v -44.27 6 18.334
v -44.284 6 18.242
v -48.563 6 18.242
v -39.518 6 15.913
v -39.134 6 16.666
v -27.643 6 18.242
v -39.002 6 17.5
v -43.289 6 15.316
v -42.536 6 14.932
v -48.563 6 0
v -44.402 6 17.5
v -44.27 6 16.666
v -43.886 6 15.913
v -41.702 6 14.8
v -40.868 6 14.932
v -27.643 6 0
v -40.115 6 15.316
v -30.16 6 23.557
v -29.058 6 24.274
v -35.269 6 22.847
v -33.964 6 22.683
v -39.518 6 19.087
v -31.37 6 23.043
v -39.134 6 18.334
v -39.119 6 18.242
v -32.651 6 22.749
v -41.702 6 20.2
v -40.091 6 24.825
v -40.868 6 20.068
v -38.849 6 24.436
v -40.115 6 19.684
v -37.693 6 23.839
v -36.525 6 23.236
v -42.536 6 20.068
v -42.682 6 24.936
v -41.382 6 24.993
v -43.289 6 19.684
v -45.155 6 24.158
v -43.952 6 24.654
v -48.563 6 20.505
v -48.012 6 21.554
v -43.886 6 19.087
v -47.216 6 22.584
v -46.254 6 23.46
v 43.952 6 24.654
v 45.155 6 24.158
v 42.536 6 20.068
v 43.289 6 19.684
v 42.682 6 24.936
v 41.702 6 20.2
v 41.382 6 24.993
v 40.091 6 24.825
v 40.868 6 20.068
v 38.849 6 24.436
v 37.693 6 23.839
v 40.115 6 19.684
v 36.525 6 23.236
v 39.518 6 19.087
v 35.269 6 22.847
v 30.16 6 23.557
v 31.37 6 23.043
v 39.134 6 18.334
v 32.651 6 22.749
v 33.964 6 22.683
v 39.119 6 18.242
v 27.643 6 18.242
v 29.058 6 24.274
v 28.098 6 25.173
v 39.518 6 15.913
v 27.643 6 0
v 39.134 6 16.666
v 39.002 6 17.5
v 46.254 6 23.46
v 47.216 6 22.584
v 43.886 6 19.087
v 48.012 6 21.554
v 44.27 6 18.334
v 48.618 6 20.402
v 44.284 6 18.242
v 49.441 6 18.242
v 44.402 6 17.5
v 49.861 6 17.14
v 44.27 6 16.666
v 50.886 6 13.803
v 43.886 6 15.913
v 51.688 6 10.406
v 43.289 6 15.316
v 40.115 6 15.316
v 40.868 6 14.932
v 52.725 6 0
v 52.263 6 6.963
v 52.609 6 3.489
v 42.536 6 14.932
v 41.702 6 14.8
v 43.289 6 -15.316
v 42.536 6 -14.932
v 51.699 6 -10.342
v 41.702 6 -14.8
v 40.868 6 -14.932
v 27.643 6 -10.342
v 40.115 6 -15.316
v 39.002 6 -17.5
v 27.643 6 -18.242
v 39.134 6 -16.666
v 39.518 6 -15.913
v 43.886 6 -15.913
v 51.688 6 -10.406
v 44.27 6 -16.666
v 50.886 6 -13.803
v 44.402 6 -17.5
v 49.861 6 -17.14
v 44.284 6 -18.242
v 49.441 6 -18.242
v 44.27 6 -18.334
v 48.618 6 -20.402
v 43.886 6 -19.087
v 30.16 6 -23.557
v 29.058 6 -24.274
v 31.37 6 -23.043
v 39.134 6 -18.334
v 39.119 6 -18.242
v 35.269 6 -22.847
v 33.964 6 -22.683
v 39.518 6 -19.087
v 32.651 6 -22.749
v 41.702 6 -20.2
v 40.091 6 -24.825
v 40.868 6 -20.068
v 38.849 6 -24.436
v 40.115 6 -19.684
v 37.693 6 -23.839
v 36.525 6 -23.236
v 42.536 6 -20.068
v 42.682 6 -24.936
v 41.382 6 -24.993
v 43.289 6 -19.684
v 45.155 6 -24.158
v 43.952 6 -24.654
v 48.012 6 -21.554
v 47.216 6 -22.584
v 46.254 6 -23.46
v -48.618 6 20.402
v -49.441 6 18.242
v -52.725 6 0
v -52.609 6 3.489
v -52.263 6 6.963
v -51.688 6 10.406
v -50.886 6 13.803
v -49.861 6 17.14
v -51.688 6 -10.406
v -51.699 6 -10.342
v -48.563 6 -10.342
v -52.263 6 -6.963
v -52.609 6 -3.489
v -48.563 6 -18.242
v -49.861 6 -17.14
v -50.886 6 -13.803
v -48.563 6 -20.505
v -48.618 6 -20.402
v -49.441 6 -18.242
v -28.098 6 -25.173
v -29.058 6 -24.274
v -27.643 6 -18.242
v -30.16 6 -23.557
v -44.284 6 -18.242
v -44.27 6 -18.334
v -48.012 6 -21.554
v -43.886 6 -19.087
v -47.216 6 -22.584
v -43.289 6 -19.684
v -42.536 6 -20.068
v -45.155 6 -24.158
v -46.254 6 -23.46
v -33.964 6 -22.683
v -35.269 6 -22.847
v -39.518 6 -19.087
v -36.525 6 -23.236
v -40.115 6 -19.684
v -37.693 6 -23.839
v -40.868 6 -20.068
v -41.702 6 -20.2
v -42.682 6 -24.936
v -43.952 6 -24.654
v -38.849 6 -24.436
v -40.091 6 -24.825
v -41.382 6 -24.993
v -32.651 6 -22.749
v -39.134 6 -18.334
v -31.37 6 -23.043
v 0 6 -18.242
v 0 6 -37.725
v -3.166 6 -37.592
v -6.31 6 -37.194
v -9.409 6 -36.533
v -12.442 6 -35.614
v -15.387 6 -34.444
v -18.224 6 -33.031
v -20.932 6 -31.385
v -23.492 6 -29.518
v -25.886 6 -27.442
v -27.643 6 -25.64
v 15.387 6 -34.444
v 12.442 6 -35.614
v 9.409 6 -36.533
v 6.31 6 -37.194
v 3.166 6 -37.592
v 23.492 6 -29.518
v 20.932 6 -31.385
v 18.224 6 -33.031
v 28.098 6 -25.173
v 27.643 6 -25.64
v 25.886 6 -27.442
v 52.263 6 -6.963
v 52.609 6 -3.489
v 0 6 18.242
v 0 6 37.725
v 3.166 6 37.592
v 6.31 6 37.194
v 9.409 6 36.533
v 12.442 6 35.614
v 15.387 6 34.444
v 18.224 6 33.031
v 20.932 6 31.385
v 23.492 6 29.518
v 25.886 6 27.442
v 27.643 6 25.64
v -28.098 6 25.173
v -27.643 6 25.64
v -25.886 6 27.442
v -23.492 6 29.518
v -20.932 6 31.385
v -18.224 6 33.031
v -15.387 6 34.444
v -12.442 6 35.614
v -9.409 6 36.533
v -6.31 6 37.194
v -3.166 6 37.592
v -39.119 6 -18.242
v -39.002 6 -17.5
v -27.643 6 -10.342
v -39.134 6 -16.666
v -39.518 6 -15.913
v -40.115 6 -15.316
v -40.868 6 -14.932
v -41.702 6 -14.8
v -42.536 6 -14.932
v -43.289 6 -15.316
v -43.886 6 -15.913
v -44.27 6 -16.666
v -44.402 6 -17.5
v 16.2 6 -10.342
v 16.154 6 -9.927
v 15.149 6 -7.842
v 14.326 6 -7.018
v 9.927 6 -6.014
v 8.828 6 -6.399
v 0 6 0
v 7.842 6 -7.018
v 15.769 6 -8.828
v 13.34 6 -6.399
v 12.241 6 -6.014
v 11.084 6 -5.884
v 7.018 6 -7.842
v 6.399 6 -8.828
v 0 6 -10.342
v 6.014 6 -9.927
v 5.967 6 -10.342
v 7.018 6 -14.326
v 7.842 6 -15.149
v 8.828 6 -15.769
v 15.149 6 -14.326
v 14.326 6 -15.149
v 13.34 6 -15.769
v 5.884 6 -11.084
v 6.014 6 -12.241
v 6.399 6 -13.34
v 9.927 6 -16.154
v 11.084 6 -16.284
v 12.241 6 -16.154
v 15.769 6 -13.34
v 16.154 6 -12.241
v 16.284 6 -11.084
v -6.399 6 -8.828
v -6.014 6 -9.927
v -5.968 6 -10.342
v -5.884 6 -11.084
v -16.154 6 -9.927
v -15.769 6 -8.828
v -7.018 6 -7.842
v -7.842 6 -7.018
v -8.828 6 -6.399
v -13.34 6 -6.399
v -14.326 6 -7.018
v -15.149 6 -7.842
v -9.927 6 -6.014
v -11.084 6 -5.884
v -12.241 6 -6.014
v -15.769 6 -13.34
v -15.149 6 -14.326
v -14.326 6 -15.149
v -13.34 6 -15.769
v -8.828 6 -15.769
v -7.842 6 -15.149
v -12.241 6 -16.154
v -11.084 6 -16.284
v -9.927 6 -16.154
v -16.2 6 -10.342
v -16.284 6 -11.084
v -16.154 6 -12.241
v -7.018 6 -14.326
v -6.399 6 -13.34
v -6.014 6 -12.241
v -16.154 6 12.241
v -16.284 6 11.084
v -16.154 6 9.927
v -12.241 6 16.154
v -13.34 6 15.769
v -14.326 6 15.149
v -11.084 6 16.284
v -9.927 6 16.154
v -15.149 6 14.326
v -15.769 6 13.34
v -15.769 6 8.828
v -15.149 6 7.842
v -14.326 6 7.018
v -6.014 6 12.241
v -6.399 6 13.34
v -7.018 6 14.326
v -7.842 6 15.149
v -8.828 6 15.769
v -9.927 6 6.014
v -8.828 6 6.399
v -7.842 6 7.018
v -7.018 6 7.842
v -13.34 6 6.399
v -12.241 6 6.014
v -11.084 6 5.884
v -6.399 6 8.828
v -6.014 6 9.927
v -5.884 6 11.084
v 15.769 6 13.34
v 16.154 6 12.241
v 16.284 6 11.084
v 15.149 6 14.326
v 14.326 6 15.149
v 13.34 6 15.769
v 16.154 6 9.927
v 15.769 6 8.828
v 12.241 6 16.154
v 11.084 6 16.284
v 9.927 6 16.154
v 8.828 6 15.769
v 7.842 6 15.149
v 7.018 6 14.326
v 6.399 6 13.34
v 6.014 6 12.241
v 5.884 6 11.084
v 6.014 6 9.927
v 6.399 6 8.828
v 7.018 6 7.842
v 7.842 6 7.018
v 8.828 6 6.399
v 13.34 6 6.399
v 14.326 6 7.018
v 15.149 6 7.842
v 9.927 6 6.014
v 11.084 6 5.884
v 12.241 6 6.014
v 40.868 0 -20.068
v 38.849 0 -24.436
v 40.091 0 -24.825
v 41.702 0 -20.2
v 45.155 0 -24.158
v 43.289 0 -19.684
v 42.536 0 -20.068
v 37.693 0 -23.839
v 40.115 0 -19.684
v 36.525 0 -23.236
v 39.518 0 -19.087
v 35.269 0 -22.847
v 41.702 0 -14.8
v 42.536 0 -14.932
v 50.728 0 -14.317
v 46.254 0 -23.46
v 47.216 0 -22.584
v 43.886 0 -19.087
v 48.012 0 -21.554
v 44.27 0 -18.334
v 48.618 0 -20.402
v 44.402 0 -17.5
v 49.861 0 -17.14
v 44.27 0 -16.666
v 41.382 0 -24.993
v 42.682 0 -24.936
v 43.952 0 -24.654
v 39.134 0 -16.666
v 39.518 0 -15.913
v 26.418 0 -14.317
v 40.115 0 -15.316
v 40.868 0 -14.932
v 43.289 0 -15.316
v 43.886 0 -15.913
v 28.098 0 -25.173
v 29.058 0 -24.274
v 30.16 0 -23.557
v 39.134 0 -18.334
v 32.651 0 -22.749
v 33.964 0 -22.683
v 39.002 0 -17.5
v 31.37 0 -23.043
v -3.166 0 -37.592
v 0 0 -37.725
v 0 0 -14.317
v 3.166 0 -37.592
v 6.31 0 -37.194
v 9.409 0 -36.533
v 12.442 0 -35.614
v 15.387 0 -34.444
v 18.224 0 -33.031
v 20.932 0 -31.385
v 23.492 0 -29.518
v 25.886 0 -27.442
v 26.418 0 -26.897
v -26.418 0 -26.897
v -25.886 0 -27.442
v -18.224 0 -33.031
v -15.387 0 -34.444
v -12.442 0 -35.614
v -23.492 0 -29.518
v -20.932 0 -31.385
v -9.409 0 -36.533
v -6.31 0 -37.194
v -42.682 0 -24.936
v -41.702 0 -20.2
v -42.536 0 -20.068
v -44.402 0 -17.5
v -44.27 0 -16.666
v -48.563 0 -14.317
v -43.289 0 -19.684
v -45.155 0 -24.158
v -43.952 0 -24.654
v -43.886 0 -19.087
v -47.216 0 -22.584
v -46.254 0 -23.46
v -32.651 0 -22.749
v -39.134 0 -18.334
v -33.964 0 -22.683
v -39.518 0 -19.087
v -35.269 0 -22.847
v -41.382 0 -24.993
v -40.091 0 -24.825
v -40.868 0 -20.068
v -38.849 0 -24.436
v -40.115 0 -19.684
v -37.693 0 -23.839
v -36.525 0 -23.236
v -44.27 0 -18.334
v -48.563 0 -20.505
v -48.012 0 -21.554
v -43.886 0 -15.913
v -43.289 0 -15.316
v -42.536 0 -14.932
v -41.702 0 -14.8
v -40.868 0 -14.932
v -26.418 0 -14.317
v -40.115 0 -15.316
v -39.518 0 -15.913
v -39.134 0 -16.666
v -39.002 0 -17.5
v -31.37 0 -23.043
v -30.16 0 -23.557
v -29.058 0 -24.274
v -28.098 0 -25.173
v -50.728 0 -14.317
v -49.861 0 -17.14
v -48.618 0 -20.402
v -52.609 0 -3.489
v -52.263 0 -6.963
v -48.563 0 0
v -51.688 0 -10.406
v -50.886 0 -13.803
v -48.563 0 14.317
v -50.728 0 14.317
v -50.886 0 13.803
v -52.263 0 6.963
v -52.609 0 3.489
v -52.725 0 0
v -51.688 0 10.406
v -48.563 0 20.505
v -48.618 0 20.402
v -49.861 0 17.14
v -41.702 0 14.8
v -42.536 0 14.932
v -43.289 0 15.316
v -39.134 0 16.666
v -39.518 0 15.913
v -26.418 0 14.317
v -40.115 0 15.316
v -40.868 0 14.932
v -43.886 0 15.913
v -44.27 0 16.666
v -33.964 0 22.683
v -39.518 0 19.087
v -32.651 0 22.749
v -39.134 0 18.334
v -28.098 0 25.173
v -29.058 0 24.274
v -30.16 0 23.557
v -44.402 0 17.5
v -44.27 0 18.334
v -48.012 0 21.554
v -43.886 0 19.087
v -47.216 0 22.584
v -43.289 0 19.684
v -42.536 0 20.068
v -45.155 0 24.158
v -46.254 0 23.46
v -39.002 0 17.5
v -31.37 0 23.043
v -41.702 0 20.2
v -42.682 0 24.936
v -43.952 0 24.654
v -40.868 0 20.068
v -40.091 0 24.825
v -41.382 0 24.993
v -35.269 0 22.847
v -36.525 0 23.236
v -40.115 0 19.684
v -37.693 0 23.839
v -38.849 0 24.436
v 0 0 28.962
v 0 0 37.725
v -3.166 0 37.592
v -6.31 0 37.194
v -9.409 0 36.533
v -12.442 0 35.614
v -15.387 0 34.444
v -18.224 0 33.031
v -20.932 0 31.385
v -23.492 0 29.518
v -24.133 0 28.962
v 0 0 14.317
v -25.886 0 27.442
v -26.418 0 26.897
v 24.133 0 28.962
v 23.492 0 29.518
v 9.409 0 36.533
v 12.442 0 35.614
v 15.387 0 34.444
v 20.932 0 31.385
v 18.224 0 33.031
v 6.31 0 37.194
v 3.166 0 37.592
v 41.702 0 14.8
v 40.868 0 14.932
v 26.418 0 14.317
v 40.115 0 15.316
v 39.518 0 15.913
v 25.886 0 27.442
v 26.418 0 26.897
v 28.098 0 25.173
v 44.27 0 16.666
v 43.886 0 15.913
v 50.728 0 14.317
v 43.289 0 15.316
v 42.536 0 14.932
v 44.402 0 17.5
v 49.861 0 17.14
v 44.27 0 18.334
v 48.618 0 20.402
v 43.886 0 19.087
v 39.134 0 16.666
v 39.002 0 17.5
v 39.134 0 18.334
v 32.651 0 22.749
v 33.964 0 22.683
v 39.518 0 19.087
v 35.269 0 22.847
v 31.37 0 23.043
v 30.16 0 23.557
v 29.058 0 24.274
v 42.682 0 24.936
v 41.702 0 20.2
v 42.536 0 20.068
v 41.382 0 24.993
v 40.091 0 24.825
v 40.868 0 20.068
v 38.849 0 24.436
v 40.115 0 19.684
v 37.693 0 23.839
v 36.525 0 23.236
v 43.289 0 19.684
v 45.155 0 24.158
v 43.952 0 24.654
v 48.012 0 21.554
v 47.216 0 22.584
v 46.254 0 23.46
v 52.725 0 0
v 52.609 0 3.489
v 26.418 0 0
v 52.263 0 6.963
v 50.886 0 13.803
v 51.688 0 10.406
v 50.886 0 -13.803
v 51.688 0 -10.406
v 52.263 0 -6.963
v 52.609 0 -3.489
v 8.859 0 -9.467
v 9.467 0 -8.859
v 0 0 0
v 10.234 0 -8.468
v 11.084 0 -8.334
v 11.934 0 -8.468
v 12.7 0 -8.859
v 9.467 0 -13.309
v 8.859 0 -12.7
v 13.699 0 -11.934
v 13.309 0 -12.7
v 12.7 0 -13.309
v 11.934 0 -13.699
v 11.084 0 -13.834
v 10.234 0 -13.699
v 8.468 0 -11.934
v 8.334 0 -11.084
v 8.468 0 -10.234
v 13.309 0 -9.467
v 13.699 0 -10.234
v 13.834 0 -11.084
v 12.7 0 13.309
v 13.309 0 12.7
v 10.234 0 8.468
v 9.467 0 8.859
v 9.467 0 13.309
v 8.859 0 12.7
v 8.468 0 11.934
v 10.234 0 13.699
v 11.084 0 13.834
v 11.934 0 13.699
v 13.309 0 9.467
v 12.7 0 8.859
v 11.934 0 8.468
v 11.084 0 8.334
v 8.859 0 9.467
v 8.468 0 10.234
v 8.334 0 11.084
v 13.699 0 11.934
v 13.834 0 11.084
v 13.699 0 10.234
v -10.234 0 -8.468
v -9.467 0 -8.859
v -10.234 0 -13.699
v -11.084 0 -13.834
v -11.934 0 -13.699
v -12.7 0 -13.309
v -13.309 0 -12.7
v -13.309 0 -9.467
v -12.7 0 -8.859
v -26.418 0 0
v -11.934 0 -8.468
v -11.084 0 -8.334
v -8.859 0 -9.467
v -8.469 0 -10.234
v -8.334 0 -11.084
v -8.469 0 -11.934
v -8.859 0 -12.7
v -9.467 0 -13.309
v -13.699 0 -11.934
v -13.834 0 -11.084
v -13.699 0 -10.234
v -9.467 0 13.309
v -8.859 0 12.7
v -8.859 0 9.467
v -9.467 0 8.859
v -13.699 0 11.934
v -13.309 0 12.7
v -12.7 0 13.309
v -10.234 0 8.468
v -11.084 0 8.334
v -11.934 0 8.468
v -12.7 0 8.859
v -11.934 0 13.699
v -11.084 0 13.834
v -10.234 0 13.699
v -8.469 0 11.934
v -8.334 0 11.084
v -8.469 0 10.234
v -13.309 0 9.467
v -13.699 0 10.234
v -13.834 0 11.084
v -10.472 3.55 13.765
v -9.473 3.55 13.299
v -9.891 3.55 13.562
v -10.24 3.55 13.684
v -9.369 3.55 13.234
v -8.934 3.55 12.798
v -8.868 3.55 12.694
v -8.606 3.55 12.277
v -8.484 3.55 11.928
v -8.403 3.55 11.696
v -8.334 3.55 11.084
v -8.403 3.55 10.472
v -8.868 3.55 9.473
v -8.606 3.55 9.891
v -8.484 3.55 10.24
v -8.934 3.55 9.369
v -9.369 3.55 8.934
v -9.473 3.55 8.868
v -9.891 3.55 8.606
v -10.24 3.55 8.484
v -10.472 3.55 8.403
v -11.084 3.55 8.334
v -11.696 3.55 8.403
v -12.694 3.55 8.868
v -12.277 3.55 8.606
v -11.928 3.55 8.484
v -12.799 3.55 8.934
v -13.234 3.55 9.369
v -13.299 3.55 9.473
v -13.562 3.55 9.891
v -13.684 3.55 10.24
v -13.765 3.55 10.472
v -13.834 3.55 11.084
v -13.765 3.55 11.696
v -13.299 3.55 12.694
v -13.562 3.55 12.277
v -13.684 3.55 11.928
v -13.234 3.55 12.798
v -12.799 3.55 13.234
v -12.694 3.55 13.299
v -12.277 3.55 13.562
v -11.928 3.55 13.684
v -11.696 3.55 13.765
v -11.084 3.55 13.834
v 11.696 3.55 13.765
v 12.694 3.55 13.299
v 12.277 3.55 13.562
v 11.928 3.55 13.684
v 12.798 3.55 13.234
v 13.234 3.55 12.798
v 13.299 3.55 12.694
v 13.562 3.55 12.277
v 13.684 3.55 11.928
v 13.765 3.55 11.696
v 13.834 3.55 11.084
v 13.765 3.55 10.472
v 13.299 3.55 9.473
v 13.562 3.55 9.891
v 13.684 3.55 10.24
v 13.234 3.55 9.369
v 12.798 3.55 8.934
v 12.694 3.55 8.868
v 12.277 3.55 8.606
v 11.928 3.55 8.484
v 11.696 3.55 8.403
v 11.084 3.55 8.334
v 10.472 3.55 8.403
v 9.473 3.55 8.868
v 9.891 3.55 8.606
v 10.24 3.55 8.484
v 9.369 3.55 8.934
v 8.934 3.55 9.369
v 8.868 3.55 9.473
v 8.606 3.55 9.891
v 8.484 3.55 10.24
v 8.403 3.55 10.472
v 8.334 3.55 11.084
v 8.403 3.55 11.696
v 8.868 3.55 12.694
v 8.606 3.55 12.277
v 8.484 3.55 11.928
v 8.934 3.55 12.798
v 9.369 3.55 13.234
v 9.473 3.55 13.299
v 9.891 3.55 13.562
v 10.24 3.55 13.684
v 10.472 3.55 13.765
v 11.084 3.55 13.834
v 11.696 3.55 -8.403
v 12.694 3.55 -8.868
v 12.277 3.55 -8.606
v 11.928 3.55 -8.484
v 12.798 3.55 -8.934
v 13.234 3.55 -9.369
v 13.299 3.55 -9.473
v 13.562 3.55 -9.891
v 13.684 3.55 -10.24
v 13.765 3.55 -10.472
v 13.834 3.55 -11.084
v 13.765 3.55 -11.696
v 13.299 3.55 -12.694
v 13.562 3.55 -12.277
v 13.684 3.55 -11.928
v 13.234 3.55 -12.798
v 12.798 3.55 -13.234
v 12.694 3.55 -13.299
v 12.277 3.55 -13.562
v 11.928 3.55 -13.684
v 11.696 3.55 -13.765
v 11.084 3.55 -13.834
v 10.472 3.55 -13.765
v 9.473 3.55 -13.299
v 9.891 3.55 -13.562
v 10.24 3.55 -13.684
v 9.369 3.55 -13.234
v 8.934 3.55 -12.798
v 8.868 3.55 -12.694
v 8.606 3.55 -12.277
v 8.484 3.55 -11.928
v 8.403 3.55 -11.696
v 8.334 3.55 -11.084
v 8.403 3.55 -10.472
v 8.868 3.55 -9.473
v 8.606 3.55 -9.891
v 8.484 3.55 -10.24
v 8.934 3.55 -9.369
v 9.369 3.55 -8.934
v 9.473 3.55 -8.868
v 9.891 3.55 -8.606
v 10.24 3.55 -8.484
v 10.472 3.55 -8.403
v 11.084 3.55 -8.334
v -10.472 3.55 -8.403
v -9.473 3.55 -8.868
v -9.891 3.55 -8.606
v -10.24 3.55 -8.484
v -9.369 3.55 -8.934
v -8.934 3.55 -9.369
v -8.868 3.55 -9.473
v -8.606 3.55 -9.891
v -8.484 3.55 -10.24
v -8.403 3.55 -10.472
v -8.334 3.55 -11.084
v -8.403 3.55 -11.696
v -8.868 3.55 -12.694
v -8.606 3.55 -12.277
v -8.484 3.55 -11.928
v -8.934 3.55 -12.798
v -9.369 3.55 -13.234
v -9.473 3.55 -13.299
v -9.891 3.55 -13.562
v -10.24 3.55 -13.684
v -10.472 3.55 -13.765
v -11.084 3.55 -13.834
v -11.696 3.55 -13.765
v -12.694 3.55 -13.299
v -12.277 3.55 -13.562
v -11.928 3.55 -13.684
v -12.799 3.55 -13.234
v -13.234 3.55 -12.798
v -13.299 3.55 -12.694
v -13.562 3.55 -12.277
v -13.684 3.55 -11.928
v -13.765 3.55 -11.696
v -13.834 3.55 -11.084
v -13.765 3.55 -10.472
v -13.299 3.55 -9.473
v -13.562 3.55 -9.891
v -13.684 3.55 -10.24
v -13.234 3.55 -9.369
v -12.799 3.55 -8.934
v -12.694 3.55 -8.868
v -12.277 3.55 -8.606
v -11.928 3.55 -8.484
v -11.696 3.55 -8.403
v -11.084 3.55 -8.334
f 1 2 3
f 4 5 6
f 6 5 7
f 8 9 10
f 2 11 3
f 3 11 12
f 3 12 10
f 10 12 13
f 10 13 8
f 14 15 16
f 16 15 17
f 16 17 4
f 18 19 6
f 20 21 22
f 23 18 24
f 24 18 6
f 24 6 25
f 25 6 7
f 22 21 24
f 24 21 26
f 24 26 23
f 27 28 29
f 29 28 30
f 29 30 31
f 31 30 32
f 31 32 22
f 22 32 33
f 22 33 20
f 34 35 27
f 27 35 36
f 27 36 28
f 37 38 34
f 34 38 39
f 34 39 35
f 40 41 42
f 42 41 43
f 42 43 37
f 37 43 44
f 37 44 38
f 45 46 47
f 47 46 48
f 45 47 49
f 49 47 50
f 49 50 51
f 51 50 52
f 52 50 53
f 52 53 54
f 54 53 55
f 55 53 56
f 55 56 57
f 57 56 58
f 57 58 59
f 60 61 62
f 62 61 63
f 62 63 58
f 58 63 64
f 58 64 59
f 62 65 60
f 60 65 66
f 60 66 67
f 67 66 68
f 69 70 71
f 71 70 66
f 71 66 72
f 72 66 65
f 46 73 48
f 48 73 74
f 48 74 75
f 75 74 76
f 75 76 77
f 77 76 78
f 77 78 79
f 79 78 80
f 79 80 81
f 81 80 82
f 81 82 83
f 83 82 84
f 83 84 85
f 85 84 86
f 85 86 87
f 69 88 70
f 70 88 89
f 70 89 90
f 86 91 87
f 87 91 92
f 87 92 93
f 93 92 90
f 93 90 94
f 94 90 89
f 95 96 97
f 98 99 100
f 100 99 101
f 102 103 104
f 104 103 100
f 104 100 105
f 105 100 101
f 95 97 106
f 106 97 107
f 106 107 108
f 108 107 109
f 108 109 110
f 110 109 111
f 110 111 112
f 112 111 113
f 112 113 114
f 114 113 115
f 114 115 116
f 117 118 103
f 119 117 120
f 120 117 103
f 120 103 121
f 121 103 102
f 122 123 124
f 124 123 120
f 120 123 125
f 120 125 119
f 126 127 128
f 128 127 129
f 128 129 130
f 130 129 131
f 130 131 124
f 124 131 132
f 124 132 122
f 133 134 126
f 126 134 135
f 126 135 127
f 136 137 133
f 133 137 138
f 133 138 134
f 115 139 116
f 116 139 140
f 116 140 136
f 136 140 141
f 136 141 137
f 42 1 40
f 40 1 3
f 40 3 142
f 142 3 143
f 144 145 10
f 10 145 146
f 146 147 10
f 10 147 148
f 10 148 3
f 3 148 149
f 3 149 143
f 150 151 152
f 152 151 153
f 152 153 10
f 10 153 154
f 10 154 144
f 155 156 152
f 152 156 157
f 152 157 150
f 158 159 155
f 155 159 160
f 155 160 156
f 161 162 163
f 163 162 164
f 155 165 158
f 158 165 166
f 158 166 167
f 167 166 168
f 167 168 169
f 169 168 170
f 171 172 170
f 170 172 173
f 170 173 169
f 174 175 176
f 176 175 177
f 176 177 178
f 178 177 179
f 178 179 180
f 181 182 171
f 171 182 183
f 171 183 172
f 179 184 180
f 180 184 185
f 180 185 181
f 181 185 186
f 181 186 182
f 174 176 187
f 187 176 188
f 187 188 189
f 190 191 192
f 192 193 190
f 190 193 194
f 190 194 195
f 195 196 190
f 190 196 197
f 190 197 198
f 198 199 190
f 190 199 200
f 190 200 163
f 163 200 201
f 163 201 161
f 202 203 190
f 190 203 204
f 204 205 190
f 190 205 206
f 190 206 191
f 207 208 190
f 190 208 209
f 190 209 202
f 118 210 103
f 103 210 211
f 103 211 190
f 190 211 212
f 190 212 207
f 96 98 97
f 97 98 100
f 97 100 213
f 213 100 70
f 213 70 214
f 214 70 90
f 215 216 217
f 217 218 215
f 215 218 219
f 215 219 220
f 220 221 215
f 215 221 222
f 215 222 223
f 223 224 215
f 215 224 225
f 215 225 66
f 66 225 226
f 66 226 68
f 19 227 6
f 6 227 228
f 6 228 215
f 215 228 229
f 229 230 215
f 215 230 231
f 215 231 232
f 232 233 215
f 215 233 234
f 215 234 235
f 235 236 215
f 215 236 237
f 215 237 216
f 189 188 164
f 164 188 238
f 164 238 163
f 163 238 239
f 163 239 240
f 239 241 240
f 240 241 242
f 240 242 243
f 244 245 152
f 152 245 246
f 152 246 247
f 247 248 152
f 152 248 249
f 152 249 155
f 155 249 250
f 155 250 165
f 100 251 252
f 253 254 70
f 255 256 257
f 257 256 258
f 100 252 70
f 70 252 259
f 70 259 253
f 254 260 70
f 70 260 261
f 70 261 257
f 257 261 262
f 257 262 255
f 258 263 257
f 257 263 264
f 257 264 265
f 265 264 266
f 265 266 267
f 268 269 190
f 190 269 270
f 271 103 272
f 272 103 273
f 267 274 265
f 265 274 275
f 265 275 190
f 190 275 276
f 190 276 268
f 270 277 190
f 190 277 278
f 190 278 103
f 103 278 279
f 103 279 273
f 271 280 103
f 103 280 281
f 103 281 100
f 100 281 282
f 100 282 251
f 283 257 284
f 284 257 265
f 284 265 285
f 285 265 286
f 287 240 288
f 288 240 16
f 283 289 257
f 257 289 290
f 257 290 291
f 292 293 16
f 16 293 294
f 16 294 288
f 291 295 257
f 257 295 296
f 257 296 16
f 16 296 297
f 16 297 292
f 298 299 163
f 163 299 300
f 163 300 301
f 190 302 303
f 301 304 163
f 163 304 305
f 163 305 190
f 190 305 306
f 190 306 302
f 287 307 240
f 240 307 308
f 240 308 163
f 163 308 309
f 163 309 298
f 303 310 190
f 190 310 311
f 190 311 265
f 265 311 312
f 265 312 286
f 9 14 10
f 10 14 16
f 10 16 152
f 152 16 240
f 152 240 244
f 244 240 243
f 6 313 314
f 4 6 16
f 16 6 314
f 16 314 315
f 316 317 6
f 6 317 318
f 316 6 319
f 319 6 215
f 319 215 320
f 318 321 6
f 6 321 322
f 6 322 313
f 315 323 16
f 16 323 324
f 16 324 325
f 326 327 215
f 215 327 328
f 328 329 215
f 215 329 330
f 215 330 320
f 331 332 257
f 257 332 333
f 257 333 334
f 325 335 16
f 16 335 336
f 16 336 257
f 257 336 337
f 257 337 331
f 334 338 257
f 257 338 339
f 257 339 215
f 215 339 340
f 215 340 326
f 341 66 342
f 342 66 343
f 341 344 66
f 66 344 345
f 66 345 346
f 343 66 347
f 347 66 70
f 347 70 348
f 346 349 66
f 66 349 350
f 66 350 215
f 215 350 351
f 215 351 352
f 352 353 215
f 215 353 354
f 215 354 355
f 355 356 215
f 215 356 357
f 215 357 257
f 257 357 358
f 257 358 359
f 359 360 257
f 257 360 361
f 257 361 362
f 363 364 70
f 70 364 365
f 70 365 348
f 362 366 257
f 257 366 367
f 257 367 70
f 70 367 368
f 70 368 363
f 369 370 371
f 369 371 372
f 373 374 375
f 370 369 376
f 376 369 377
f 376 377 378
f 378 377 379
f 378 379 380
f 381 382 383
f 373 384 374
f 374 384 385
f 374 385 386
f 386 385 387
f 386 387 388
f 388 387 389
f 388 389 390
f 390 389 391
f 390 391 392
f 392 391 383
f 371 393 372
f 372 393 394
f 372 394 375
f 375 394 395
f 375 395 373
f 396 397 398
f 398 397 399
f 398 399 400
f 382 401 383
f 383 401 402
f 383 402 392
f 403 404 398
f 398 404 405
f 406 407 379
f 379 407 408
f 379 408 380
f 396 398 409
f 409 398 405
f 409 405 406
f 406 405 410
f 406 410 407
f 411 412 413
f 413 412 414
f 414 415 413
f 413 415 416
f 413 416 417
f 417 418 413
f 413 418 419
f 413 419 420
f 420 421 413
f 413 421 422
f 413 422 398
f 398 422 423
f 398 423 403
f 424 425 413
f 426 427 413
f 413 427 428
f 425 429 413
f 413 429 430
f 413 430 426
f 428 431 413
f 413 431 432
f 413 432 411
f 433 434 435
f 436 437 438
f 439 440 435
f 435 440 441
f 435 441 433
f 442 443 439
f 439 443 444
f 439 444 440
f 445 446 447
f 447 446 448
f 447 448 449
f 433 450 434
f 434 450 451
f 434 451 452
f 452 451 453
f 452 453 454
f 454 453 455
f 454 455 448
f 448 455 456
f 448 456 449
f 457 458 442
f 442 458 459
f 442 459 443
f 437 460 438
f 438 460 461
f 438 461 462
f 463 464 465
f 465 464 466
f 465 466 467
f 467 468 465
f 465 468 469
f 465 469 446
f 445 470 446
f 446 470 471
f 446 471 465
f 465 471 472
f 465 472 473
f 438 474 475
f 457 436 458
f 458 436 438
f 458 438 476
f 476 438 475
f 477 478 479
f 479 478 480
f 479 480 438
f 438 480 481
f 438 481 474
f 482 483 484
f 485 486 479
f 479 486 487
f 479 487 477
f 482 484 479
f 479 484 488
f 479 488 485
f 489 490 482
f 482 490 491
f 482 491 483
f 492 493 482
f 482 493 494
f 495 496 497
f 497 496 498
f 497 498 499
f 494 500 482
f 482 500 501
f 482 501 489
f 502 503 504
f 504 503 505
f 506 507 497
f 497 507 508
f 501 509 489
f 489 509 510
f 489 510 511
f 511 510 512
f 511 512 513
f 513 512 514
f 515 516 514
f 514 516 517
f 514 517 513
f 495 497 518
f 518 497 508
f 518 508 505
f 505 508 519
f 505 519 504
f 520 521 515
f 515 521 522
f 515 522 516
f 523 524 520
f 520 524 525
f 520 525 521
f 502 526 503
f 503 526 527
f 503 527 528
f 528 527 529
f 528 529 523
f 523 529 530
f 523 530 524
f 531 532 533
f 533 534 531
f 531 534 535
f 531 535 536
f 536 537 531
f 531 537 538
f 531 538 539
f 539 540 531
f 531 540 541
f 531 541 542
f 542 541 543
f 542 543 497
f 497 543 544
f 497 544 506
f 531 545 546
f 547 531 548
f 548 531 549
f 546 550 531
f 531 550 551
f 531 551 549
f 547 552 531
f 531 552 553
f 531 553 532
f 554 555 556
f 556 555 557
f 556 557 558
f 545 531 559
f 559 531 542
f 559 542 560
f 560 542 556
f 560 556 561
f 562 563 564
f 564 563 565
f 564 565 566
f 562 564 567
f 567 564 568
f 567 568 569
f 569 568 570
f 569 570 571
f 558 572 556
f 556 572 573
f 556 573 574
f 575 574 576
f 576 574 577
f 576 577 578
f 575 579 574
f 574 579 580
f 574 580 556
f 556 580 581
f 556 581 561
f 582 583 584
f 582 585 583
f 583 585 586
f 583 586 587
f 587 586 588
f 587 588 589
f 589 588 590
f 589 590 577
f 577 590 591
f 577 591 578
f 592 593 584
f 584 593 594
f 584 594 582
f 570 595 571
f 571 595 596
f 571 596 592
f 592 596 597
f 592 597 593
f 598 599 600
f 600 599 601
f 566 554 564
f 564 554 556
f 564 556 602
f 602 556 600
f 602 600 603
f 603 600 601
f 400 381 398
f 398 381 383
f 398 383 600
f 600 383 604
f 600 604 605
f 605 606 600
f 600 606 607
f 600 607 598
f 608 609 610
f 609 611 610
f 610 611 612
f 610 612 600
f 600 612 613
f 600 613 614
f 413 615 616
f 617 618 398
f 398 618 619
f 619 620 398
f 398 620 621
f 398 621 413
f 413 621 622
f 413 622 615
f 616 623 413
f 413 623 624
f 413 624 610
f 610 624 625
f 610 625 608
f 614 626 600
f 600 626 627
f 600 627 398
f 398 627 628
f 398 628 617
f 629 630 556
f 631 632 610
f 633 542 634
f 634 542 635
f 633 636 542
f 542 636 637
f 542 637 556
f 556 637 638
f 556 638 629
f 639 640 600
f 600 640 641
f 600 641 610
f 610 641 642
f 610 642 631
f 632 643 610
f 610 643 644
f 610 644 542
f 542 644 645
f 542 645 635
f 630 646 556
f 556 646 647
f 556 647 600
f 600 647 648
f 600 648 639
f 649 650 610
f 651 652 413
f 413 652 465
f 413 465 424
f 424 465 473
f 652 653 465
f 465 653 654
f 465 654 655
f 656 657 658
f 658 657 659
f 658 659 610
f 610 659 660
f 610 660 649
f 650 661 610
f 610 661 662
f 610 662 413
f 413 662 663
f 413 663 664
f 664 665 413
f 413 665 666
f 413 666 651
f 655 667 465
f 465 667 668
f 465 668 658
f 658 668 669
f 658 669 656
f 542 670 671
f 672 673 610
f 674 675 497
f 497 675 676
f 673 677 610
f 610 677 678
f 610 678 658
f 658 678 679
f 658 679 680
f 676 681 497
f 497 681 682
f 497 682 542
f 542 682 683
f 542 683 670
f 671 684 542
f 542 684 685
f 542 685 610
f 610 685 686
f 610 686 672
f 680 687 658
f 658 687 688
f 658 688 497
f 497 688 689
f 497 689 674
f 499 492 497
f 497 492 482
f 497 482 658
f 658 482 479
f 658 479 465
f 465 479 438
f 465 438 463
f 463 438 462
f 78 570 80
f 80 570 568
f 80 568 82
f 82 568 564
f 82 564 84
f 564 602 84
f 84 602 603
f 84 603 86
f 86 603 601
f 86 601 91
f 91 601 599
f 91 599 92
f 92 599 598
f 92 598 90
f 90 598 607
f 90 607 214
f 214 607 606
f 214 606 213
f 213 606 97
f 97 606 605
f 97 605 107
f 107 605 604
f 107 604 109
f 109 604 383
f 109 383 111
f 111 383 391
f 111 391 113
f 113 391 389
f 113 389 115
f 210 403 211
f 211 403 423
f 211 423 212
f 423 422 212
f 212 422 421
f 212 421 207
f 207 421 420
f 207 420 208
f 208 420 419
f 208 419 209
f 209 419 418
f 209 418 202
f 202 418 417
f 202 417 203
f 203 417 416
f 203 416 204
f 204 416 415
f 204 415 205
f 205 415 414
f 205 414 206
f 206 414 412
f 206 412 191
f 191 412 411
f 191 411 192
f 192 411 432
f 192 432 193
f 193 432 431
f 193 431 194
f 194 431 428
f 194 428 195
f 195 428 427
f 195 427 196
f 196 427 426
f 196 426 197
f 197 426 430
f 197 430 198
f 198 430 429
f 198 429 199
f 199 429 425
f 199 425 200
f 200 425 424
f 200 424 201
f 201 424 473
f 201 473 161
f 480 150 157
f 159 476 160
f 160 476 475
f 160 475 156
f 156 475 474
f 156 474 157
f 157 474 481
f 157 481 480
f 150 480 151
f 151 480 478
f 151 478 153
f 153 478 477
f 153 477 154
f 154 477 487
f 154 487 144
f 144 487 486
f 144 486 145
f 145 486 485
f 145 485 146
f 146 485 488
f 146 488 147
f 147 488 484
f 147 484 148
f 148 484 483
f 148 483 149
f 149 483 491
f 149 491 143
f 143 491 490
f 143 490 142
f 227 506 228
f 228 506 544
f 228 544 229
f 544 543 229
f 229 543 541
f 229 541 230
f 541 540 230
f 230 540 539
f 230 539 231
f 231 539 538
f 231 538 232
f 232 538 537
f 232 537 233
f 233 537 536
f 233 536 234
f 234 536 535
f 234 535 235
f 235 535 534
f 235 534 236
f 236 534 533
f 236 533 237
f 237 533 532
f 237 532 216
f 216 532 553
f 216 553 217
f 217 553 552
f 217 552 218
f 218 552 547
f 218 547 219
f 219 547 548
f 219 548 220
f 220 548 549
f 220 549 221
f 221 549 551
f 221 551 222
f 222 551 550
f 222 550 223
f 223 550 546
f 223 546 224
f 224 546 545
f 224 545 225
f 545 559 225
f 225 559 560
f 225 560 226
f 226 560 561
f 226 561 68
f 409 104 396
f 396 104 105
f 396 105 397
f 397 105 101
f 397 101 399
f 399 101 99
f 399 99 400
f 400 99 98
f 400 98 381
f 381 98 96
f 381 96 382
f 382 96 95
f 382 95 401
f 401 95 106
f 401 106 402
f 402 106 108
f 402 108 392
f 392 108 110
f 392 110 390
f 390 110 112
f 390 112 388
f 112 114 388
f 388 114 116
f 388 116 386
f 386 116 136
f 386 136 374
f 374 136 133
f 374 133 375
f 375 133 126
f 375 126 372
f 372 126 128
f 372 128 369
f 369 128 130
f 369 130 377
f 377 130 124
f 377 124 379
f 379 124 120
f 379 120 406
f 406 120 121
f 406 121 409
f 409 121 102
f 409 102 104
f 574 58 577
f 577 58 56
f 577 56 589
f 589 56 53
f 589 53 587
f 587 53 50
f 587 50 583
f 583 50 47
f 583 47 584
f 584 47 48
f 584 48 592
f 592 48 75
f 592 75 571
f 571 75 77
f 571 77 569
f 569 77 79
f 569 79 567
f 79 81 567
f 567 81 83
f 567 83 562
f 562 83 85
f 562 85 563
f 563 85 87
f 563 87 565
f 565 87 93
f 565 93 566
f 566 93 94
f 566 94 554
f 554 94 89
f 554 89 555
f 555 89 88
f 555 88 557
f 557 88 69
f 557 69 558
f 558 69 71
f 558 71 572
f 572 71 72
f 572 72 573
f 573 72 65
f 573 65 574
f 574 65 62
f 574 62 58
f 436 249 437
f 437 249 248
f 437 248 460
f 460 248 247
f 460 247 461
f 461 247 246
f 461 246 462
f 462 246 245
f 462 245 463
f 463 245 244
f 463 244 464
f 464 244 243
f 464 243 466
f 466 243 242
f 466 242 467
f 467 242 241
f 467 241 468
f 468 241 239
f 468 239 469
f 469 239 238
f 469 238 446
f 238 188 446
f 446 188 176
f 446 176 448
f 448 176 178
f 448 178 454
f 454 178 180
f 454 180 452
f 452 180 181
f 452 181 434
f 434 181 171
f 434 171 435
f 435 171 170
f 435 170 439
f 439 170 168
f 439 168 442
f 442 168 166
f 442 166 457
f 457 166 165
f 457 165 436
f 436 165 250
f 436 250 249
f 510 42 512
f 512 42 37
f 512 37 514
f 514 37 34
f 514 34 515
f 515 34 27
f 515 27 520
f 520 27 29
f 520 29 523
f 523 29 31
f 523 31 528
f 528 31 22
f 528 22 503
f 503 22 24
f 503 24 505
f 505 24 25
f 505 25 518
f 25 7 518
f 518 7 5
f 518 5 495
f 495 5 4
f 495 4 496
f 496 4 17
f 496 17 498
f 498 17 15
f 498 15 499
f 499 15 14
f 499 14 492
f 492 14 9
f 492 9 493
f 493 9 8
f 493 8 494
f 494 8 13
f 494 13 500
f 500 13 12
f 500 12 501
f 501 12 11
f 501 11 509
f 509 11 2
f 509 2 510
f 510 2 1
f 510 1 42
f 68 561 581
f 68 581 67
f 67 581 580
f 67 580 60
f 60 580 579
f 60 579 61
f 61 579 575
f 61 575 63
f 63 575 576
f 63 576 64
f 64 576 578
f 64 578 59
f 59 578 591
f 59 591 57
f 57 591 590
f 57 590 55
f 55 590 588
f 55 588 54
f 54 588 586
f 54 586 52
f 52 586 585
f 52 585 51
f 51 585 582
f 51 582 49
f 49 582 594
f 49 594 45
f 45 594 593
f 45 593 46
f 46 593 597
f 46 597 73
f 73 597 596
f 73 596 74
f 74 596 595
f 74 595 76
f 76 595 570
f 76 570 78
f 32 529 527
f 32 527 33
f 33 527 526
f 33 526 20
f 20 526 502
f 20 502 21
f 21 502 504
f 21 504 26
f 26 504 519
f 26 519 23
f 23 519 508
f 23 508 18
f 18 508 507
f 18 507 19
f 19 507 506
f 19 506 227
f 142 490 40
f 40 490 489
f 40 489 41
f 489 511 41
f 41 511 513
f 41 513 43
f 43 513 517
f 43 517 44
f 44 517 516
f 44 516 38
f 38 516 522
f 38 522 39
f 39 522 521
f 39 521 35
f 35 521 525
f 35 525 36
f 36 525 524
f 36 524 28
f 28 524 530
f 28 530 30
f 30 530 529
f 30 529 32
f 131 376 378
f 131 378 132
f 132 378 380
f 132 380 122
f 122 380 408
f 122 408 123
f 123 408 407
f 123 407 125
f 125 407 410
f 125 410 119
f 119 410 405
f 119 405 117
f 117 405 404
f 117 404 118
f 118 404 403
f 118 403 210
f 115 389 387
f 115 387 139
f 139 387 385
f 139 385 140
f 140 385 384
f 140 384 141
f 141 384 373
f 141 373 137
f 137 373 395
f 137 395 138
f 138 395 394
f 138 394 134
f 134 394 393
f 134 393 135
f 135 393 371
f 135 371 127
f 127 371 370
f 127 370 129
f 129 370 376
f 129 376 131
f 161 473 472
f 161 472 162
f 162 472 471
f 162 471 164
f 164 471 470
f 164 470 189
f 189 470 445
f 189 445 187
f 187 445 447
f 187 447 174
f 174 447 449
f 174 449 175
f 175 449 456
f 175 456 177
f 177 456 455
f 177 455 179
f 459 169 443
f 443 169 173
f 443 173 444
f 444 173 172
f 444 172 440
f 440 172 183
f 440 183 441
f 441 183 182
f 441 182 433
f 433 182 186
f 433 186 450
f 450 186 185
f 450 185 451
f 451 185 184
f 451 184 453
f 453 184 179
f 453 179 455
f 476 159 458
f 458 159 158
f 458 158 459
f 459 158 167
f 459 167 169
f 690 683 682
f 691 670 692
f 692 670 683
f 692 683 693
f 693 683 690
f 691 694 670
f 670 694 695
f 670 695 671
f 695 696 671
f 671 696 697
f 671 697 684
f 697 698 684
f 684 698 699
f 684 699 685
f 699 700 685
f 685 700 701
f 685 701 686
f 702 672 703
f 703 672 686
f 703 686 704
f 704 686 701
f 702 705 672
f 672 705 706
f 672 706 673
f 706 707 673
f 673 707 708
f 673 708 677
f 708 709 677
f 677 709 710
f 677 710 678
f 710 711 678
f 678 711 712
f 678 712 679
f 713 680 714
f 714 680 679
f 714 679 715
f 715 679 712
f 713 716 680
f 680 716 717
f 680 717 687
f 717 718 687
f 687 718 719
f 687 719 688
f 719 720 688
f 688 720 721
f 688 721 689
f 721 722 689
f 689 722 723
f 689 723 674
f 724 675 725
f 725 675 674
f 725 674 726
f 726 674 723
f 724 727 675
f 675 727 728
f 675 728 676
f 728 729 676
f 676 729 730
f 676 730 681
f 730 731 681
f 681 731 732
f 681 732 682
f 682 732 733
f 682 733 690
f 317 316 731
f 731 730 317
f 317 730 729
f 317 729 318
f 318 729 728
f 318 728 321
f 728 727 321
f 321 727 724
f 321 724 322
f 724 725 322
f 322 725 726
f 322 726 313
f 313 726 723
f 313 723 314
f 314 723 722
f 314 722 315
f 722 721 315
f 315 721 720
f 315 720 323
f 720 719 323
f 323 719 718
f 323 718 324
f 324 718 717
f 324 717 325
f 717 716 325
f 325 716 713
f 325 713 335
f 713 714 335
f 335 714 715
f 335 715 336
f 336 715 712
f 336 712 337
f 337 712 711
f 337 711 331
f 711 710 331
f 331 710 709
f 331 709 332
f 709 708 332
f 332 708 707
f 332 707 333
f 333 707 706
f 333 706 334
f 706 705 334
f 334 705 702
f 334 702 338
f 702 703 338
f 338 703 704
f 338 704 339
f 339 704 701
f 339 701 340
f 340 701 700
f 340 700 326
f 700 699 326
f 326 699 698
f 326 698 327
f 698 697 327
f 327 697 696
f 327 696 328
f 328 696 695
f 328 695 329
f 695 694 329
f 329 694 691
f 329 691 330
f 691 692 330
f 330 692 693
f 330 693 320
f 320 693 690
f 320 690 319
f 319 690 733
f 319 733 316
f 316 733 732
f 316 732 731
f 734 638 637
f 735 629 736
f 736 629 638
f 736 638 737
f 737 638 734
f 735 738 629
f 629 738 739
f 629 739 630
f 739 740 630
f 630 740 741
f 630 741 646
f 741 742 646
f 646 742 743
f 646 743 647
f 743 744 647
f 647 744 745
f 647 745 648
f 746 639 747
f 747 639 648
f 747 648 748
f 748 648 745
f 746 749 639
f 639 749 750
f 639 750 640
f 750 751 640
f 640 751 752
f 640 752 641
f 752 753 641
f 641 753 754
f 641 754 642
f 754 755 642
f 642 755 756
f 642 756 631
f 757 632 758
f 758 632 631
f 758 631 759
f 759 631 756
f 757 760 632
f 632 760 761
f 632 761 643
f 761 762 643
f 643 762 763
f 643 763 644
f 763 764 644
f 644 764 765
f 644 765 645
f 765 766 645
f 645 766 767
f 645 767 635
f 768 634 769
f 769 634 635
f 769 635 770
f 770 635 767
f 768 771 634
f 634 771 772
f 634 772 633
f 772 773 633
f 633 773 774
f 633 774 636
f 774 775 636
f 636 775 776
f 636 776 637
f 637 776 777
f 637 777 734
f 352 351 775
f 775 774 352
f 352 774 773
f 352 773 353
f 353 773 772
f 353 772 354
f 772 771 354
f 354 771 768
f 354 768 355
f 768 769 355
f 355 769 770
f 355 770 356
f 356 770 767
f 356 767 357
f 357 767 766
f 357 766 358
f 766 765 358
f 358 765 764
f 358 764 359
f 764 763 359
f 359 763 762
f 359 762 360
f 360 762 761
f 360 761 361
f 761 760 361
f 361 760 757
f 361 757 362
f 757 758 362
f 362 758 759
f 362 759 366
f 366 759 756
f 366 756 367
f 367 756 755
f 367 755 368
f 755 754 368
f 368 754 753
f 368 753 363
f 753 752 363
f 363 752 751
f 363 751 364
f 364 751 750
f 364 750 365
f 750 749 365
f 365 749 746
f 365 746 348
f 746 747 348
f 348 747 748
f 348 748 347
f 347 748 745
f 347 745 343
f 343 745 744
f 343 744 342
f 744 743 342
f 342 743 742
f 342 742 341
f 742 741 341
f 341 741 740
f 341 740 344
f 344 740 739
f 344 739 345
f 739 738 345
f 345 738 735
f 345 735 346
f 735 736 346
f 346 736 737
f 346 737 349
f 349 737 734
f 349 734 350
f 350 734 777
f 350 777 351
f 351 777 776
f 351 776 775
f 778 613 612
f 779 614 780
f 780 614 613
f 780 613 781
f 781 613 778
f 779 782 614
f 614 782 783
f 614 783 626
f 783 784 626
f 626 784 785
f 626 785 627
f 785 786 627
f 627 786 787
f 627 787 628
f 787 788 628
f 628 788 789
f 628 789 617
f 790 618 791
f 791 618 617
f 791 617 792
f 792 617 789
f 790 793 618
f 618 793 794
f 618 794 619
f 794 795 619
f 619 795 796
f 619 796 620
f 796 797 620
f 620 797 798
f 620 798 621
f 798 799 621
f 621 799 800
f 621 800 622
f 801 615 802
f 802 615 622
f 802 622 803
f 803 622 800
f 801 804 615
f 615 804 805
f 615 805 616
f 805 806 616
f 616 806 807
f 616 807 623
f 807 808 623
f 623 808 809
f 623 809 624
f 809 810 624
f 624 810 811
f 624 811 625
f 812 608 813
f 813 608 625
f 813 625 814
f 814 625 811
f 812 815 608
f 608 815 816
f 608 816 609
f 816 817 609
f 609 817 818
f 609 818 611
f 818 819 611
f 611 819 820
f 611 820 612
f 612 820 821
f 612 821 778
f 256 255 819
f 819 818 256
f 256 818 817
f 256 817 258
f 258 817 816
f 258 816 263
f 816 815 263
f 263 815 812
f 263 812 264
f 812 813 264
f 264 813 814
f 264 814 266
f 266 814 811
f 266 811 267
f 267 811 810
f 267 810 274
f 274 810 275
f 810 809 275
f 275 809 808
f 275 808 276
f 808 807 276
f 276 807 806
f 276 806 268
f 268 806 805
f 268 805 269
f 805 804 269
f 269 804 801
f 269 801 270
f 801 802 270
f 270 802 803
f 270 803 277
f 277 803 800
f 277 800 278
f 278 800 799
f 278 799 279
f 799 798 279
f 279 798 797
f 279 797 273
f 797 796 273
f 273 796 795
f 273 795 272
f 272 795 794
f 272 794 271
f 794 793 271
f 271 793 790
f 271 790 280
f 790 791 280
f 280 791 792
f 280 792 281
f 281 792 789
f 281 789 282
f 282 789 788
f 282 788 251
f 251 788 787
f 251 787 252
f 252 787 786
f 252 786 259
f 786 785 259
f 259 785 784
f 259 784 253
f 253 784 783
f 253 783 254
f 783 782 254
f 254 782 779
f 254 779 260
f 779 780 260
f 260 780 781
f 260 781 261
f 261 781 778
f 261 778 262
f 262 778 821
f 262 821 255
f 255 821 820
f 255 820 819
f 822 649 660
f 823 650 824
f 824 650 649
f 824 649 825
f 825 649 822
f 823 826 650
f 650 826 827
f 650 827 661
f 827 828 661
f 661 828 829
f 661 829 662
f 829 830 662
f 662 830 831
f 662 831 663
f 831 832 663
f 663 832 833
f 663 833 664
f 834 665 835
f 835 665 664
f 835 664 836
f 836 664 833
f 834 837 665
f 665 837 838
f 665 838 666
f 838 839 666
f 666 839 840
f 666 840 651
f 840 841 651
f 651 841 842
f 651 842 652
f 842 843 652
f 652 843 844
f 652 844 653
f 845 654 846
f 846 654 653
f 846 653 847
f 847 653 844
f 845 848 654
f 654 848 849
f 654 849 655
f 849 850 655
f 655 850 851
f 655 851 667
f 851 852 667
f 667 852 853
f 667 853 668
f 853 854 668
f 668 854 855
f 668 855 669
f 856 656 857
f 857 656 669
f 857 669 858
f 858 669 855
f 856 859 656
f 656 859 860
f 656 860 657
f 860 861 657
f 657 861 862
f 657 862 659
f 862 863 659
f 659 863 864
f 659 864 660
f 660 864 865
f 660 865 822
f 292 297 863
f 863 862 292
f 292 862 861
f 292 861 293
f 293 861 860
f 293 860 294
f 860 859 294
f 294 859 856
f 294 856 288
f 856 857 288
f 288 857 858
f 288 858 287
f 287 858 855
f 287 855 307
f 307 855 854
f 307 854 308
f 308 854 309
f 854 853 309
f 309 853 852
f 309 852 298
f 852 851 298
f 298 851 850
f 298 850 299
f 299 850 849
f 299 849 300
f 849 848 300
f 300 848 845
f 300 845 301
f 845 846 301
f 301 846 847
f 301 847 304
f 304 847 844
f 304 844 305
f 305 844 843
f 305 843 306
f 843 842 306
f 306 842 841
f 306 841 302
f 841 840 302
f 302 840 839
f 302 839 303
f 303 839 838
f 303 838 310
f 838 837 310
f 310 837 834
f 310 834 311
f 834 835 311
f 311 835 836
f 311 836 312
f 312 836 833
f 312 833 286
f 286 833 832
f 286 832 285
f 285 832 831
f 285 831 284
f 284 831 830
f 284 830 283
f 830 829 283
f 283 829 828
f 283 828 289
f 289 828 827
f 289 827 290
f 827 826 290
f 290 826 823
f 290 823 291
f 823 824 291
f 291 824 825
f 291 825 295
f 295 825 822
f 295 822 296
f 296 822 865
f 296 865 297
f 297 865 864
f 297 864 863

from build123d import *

# Parameters (mm, degrees)
SKETCH1_R                                       = 2.6
SKETCH1_R_2                                     = 2.7
BOSS_EXTRUDE1_DEPTH                             = 6
FILLET1_R                                       = 7.5
CSK_FOR_M5_FLAT_HEAD_MACHINE_SCREW1_D           = 5.5
CSK_FOR_M5_FLAT_HEAD_MACHINE_SCREW1_CSINK_D     = 10.4
CSK_FOR_M5_FLAT_HEAD_MACHINE_SCREW1_CSINK_ANGLE = 90


with BuildPart() as part:
    # Sketch1 → Boss-Extrude1 (new body)
    with BuildSketch(Plane(origin=(0, 0, 0), x_dir=(1, 0, 0), z_dir=(0, 1, 0))):
        with BuildLine():
            Line((31.883633055, 20.164562188), (44.561021943, 28.182280752))
            ThreePointArc((44.561021943, 28.182280752), (52.725, 0), (44.561021943, -28.182280752))
            Line((44.561021943, -28.182280752), (31.883633055, -20.164562188))
            ThreePointArc((31.883633055, -20.164562188), (0, -37.725), (-31.883633055, -20.164562188))
            Line((-31.883633055, -20.164562188), (-44.561021943, -28.182280752))
            ThreePointArc((-44.561021943, -28.182280752), (-52.725, 0), (-44.561021943, 28.182280752))
            Line((-44.561021943, 28.182280752), (-31.883633055, 20.164562188))
            ThreePointArc((-31.883633055, 20.164562188), (0, 37.725), (31.883633055, 20.164562188))
        make_face()
        with Locations(Location((-11.083898795, 11.083898795, 0), (0, 0, 270))):
            Circle(SKETCH1_R, mode=Mode.SUBTRACT)
        with Locations(Location((11.083898795, 11.083898795, 0), (0, 0, 270))):
            Circle(SKETCH1_R, mode=Mode.SUBTRACT)
        with Locations(Location((11.083898795, -11.083898795, 0), (0, 0, 270))):
            Circle(SKETCH1_R, mode=Mode.SUBTRACT)
        with Locations(Location((-11.083898795, -11.083898795, 0), (0, 0, 270))):
            Circle(SKETCH1_R, mode=Mode.SUBTRACT)
        with Locations(Location((41.701925915, 17.5, 0), (0, 0, 270))):
            Circle(SKETCH1_R_2, mode=Mode.SUBTRACT)
        with Locations(Location((41.701925915, -17.5, 0), (0, 0, 270))):
            Circle(SKETCH1_R_2, mode=Mode.SUBTRACT)
        with Locations(Location((-41.701925915, 17.5, 0), (0, 0, 90))):
            Circle(SKETCH1_R_2, mode=Mode.SUBTRACT)
        with Locations(Location((-41.701925915, -17.5, 0), (0, 0, 90))):
            Circle(SKETCH1_R_2, mode=Mode.SUBTRACT)
    extrude(amount=BOSS_EXTRUDE1_DEPTH)

    # Fillet1
    fillet1_edges = [part.edges().sort_by_distance(p)[0] for p in [
        (44.561021943, 3, 28.182280752),
        (31.883633055, 3, 20.164562188),
        (-44.561021943, 3, 28.182280752),
        (-31.883633055, 3, 20.164562188),
        (44.561021943, 3, -28.182280752),
        (31.883633055, 3, -20.164562188),
        (-44.561021943, 3, -28.182280752),
        (-31.883633055, 3, -20.164562188),
    ]]
    fillet(fillet1_edges, radius=FILLET1_R - 0.0001)  # a hair under: the kernel refuses the full size

    # CSK for M5 Flat Head Machine Screw1 (through all)
    with Locations(Plane(origin=(0, 6, 0), x_dir=(1, 0, 0), z_dir=(0, 1, 0))):
        with Locations((-11.083898795, 11.083898795), (11.083898795, 11.083898795), (11.083898795, -11.083898795), (-11.083898795, -11.083898795)):
            CounterSinkHole(CSK_FOR_M5_FLAT_HEAD_MACHINE_SCREW1_D / 2, CSK_FOR_M5_FLAT_HEAD_MACHINE_SCREW1_CSINK_D / 2, counter_sink_angle=CSK_FOR_M5_FLAT_HEAD_MACHINE_SCREW1_CSINK_ANGLE)


solid = part.part
